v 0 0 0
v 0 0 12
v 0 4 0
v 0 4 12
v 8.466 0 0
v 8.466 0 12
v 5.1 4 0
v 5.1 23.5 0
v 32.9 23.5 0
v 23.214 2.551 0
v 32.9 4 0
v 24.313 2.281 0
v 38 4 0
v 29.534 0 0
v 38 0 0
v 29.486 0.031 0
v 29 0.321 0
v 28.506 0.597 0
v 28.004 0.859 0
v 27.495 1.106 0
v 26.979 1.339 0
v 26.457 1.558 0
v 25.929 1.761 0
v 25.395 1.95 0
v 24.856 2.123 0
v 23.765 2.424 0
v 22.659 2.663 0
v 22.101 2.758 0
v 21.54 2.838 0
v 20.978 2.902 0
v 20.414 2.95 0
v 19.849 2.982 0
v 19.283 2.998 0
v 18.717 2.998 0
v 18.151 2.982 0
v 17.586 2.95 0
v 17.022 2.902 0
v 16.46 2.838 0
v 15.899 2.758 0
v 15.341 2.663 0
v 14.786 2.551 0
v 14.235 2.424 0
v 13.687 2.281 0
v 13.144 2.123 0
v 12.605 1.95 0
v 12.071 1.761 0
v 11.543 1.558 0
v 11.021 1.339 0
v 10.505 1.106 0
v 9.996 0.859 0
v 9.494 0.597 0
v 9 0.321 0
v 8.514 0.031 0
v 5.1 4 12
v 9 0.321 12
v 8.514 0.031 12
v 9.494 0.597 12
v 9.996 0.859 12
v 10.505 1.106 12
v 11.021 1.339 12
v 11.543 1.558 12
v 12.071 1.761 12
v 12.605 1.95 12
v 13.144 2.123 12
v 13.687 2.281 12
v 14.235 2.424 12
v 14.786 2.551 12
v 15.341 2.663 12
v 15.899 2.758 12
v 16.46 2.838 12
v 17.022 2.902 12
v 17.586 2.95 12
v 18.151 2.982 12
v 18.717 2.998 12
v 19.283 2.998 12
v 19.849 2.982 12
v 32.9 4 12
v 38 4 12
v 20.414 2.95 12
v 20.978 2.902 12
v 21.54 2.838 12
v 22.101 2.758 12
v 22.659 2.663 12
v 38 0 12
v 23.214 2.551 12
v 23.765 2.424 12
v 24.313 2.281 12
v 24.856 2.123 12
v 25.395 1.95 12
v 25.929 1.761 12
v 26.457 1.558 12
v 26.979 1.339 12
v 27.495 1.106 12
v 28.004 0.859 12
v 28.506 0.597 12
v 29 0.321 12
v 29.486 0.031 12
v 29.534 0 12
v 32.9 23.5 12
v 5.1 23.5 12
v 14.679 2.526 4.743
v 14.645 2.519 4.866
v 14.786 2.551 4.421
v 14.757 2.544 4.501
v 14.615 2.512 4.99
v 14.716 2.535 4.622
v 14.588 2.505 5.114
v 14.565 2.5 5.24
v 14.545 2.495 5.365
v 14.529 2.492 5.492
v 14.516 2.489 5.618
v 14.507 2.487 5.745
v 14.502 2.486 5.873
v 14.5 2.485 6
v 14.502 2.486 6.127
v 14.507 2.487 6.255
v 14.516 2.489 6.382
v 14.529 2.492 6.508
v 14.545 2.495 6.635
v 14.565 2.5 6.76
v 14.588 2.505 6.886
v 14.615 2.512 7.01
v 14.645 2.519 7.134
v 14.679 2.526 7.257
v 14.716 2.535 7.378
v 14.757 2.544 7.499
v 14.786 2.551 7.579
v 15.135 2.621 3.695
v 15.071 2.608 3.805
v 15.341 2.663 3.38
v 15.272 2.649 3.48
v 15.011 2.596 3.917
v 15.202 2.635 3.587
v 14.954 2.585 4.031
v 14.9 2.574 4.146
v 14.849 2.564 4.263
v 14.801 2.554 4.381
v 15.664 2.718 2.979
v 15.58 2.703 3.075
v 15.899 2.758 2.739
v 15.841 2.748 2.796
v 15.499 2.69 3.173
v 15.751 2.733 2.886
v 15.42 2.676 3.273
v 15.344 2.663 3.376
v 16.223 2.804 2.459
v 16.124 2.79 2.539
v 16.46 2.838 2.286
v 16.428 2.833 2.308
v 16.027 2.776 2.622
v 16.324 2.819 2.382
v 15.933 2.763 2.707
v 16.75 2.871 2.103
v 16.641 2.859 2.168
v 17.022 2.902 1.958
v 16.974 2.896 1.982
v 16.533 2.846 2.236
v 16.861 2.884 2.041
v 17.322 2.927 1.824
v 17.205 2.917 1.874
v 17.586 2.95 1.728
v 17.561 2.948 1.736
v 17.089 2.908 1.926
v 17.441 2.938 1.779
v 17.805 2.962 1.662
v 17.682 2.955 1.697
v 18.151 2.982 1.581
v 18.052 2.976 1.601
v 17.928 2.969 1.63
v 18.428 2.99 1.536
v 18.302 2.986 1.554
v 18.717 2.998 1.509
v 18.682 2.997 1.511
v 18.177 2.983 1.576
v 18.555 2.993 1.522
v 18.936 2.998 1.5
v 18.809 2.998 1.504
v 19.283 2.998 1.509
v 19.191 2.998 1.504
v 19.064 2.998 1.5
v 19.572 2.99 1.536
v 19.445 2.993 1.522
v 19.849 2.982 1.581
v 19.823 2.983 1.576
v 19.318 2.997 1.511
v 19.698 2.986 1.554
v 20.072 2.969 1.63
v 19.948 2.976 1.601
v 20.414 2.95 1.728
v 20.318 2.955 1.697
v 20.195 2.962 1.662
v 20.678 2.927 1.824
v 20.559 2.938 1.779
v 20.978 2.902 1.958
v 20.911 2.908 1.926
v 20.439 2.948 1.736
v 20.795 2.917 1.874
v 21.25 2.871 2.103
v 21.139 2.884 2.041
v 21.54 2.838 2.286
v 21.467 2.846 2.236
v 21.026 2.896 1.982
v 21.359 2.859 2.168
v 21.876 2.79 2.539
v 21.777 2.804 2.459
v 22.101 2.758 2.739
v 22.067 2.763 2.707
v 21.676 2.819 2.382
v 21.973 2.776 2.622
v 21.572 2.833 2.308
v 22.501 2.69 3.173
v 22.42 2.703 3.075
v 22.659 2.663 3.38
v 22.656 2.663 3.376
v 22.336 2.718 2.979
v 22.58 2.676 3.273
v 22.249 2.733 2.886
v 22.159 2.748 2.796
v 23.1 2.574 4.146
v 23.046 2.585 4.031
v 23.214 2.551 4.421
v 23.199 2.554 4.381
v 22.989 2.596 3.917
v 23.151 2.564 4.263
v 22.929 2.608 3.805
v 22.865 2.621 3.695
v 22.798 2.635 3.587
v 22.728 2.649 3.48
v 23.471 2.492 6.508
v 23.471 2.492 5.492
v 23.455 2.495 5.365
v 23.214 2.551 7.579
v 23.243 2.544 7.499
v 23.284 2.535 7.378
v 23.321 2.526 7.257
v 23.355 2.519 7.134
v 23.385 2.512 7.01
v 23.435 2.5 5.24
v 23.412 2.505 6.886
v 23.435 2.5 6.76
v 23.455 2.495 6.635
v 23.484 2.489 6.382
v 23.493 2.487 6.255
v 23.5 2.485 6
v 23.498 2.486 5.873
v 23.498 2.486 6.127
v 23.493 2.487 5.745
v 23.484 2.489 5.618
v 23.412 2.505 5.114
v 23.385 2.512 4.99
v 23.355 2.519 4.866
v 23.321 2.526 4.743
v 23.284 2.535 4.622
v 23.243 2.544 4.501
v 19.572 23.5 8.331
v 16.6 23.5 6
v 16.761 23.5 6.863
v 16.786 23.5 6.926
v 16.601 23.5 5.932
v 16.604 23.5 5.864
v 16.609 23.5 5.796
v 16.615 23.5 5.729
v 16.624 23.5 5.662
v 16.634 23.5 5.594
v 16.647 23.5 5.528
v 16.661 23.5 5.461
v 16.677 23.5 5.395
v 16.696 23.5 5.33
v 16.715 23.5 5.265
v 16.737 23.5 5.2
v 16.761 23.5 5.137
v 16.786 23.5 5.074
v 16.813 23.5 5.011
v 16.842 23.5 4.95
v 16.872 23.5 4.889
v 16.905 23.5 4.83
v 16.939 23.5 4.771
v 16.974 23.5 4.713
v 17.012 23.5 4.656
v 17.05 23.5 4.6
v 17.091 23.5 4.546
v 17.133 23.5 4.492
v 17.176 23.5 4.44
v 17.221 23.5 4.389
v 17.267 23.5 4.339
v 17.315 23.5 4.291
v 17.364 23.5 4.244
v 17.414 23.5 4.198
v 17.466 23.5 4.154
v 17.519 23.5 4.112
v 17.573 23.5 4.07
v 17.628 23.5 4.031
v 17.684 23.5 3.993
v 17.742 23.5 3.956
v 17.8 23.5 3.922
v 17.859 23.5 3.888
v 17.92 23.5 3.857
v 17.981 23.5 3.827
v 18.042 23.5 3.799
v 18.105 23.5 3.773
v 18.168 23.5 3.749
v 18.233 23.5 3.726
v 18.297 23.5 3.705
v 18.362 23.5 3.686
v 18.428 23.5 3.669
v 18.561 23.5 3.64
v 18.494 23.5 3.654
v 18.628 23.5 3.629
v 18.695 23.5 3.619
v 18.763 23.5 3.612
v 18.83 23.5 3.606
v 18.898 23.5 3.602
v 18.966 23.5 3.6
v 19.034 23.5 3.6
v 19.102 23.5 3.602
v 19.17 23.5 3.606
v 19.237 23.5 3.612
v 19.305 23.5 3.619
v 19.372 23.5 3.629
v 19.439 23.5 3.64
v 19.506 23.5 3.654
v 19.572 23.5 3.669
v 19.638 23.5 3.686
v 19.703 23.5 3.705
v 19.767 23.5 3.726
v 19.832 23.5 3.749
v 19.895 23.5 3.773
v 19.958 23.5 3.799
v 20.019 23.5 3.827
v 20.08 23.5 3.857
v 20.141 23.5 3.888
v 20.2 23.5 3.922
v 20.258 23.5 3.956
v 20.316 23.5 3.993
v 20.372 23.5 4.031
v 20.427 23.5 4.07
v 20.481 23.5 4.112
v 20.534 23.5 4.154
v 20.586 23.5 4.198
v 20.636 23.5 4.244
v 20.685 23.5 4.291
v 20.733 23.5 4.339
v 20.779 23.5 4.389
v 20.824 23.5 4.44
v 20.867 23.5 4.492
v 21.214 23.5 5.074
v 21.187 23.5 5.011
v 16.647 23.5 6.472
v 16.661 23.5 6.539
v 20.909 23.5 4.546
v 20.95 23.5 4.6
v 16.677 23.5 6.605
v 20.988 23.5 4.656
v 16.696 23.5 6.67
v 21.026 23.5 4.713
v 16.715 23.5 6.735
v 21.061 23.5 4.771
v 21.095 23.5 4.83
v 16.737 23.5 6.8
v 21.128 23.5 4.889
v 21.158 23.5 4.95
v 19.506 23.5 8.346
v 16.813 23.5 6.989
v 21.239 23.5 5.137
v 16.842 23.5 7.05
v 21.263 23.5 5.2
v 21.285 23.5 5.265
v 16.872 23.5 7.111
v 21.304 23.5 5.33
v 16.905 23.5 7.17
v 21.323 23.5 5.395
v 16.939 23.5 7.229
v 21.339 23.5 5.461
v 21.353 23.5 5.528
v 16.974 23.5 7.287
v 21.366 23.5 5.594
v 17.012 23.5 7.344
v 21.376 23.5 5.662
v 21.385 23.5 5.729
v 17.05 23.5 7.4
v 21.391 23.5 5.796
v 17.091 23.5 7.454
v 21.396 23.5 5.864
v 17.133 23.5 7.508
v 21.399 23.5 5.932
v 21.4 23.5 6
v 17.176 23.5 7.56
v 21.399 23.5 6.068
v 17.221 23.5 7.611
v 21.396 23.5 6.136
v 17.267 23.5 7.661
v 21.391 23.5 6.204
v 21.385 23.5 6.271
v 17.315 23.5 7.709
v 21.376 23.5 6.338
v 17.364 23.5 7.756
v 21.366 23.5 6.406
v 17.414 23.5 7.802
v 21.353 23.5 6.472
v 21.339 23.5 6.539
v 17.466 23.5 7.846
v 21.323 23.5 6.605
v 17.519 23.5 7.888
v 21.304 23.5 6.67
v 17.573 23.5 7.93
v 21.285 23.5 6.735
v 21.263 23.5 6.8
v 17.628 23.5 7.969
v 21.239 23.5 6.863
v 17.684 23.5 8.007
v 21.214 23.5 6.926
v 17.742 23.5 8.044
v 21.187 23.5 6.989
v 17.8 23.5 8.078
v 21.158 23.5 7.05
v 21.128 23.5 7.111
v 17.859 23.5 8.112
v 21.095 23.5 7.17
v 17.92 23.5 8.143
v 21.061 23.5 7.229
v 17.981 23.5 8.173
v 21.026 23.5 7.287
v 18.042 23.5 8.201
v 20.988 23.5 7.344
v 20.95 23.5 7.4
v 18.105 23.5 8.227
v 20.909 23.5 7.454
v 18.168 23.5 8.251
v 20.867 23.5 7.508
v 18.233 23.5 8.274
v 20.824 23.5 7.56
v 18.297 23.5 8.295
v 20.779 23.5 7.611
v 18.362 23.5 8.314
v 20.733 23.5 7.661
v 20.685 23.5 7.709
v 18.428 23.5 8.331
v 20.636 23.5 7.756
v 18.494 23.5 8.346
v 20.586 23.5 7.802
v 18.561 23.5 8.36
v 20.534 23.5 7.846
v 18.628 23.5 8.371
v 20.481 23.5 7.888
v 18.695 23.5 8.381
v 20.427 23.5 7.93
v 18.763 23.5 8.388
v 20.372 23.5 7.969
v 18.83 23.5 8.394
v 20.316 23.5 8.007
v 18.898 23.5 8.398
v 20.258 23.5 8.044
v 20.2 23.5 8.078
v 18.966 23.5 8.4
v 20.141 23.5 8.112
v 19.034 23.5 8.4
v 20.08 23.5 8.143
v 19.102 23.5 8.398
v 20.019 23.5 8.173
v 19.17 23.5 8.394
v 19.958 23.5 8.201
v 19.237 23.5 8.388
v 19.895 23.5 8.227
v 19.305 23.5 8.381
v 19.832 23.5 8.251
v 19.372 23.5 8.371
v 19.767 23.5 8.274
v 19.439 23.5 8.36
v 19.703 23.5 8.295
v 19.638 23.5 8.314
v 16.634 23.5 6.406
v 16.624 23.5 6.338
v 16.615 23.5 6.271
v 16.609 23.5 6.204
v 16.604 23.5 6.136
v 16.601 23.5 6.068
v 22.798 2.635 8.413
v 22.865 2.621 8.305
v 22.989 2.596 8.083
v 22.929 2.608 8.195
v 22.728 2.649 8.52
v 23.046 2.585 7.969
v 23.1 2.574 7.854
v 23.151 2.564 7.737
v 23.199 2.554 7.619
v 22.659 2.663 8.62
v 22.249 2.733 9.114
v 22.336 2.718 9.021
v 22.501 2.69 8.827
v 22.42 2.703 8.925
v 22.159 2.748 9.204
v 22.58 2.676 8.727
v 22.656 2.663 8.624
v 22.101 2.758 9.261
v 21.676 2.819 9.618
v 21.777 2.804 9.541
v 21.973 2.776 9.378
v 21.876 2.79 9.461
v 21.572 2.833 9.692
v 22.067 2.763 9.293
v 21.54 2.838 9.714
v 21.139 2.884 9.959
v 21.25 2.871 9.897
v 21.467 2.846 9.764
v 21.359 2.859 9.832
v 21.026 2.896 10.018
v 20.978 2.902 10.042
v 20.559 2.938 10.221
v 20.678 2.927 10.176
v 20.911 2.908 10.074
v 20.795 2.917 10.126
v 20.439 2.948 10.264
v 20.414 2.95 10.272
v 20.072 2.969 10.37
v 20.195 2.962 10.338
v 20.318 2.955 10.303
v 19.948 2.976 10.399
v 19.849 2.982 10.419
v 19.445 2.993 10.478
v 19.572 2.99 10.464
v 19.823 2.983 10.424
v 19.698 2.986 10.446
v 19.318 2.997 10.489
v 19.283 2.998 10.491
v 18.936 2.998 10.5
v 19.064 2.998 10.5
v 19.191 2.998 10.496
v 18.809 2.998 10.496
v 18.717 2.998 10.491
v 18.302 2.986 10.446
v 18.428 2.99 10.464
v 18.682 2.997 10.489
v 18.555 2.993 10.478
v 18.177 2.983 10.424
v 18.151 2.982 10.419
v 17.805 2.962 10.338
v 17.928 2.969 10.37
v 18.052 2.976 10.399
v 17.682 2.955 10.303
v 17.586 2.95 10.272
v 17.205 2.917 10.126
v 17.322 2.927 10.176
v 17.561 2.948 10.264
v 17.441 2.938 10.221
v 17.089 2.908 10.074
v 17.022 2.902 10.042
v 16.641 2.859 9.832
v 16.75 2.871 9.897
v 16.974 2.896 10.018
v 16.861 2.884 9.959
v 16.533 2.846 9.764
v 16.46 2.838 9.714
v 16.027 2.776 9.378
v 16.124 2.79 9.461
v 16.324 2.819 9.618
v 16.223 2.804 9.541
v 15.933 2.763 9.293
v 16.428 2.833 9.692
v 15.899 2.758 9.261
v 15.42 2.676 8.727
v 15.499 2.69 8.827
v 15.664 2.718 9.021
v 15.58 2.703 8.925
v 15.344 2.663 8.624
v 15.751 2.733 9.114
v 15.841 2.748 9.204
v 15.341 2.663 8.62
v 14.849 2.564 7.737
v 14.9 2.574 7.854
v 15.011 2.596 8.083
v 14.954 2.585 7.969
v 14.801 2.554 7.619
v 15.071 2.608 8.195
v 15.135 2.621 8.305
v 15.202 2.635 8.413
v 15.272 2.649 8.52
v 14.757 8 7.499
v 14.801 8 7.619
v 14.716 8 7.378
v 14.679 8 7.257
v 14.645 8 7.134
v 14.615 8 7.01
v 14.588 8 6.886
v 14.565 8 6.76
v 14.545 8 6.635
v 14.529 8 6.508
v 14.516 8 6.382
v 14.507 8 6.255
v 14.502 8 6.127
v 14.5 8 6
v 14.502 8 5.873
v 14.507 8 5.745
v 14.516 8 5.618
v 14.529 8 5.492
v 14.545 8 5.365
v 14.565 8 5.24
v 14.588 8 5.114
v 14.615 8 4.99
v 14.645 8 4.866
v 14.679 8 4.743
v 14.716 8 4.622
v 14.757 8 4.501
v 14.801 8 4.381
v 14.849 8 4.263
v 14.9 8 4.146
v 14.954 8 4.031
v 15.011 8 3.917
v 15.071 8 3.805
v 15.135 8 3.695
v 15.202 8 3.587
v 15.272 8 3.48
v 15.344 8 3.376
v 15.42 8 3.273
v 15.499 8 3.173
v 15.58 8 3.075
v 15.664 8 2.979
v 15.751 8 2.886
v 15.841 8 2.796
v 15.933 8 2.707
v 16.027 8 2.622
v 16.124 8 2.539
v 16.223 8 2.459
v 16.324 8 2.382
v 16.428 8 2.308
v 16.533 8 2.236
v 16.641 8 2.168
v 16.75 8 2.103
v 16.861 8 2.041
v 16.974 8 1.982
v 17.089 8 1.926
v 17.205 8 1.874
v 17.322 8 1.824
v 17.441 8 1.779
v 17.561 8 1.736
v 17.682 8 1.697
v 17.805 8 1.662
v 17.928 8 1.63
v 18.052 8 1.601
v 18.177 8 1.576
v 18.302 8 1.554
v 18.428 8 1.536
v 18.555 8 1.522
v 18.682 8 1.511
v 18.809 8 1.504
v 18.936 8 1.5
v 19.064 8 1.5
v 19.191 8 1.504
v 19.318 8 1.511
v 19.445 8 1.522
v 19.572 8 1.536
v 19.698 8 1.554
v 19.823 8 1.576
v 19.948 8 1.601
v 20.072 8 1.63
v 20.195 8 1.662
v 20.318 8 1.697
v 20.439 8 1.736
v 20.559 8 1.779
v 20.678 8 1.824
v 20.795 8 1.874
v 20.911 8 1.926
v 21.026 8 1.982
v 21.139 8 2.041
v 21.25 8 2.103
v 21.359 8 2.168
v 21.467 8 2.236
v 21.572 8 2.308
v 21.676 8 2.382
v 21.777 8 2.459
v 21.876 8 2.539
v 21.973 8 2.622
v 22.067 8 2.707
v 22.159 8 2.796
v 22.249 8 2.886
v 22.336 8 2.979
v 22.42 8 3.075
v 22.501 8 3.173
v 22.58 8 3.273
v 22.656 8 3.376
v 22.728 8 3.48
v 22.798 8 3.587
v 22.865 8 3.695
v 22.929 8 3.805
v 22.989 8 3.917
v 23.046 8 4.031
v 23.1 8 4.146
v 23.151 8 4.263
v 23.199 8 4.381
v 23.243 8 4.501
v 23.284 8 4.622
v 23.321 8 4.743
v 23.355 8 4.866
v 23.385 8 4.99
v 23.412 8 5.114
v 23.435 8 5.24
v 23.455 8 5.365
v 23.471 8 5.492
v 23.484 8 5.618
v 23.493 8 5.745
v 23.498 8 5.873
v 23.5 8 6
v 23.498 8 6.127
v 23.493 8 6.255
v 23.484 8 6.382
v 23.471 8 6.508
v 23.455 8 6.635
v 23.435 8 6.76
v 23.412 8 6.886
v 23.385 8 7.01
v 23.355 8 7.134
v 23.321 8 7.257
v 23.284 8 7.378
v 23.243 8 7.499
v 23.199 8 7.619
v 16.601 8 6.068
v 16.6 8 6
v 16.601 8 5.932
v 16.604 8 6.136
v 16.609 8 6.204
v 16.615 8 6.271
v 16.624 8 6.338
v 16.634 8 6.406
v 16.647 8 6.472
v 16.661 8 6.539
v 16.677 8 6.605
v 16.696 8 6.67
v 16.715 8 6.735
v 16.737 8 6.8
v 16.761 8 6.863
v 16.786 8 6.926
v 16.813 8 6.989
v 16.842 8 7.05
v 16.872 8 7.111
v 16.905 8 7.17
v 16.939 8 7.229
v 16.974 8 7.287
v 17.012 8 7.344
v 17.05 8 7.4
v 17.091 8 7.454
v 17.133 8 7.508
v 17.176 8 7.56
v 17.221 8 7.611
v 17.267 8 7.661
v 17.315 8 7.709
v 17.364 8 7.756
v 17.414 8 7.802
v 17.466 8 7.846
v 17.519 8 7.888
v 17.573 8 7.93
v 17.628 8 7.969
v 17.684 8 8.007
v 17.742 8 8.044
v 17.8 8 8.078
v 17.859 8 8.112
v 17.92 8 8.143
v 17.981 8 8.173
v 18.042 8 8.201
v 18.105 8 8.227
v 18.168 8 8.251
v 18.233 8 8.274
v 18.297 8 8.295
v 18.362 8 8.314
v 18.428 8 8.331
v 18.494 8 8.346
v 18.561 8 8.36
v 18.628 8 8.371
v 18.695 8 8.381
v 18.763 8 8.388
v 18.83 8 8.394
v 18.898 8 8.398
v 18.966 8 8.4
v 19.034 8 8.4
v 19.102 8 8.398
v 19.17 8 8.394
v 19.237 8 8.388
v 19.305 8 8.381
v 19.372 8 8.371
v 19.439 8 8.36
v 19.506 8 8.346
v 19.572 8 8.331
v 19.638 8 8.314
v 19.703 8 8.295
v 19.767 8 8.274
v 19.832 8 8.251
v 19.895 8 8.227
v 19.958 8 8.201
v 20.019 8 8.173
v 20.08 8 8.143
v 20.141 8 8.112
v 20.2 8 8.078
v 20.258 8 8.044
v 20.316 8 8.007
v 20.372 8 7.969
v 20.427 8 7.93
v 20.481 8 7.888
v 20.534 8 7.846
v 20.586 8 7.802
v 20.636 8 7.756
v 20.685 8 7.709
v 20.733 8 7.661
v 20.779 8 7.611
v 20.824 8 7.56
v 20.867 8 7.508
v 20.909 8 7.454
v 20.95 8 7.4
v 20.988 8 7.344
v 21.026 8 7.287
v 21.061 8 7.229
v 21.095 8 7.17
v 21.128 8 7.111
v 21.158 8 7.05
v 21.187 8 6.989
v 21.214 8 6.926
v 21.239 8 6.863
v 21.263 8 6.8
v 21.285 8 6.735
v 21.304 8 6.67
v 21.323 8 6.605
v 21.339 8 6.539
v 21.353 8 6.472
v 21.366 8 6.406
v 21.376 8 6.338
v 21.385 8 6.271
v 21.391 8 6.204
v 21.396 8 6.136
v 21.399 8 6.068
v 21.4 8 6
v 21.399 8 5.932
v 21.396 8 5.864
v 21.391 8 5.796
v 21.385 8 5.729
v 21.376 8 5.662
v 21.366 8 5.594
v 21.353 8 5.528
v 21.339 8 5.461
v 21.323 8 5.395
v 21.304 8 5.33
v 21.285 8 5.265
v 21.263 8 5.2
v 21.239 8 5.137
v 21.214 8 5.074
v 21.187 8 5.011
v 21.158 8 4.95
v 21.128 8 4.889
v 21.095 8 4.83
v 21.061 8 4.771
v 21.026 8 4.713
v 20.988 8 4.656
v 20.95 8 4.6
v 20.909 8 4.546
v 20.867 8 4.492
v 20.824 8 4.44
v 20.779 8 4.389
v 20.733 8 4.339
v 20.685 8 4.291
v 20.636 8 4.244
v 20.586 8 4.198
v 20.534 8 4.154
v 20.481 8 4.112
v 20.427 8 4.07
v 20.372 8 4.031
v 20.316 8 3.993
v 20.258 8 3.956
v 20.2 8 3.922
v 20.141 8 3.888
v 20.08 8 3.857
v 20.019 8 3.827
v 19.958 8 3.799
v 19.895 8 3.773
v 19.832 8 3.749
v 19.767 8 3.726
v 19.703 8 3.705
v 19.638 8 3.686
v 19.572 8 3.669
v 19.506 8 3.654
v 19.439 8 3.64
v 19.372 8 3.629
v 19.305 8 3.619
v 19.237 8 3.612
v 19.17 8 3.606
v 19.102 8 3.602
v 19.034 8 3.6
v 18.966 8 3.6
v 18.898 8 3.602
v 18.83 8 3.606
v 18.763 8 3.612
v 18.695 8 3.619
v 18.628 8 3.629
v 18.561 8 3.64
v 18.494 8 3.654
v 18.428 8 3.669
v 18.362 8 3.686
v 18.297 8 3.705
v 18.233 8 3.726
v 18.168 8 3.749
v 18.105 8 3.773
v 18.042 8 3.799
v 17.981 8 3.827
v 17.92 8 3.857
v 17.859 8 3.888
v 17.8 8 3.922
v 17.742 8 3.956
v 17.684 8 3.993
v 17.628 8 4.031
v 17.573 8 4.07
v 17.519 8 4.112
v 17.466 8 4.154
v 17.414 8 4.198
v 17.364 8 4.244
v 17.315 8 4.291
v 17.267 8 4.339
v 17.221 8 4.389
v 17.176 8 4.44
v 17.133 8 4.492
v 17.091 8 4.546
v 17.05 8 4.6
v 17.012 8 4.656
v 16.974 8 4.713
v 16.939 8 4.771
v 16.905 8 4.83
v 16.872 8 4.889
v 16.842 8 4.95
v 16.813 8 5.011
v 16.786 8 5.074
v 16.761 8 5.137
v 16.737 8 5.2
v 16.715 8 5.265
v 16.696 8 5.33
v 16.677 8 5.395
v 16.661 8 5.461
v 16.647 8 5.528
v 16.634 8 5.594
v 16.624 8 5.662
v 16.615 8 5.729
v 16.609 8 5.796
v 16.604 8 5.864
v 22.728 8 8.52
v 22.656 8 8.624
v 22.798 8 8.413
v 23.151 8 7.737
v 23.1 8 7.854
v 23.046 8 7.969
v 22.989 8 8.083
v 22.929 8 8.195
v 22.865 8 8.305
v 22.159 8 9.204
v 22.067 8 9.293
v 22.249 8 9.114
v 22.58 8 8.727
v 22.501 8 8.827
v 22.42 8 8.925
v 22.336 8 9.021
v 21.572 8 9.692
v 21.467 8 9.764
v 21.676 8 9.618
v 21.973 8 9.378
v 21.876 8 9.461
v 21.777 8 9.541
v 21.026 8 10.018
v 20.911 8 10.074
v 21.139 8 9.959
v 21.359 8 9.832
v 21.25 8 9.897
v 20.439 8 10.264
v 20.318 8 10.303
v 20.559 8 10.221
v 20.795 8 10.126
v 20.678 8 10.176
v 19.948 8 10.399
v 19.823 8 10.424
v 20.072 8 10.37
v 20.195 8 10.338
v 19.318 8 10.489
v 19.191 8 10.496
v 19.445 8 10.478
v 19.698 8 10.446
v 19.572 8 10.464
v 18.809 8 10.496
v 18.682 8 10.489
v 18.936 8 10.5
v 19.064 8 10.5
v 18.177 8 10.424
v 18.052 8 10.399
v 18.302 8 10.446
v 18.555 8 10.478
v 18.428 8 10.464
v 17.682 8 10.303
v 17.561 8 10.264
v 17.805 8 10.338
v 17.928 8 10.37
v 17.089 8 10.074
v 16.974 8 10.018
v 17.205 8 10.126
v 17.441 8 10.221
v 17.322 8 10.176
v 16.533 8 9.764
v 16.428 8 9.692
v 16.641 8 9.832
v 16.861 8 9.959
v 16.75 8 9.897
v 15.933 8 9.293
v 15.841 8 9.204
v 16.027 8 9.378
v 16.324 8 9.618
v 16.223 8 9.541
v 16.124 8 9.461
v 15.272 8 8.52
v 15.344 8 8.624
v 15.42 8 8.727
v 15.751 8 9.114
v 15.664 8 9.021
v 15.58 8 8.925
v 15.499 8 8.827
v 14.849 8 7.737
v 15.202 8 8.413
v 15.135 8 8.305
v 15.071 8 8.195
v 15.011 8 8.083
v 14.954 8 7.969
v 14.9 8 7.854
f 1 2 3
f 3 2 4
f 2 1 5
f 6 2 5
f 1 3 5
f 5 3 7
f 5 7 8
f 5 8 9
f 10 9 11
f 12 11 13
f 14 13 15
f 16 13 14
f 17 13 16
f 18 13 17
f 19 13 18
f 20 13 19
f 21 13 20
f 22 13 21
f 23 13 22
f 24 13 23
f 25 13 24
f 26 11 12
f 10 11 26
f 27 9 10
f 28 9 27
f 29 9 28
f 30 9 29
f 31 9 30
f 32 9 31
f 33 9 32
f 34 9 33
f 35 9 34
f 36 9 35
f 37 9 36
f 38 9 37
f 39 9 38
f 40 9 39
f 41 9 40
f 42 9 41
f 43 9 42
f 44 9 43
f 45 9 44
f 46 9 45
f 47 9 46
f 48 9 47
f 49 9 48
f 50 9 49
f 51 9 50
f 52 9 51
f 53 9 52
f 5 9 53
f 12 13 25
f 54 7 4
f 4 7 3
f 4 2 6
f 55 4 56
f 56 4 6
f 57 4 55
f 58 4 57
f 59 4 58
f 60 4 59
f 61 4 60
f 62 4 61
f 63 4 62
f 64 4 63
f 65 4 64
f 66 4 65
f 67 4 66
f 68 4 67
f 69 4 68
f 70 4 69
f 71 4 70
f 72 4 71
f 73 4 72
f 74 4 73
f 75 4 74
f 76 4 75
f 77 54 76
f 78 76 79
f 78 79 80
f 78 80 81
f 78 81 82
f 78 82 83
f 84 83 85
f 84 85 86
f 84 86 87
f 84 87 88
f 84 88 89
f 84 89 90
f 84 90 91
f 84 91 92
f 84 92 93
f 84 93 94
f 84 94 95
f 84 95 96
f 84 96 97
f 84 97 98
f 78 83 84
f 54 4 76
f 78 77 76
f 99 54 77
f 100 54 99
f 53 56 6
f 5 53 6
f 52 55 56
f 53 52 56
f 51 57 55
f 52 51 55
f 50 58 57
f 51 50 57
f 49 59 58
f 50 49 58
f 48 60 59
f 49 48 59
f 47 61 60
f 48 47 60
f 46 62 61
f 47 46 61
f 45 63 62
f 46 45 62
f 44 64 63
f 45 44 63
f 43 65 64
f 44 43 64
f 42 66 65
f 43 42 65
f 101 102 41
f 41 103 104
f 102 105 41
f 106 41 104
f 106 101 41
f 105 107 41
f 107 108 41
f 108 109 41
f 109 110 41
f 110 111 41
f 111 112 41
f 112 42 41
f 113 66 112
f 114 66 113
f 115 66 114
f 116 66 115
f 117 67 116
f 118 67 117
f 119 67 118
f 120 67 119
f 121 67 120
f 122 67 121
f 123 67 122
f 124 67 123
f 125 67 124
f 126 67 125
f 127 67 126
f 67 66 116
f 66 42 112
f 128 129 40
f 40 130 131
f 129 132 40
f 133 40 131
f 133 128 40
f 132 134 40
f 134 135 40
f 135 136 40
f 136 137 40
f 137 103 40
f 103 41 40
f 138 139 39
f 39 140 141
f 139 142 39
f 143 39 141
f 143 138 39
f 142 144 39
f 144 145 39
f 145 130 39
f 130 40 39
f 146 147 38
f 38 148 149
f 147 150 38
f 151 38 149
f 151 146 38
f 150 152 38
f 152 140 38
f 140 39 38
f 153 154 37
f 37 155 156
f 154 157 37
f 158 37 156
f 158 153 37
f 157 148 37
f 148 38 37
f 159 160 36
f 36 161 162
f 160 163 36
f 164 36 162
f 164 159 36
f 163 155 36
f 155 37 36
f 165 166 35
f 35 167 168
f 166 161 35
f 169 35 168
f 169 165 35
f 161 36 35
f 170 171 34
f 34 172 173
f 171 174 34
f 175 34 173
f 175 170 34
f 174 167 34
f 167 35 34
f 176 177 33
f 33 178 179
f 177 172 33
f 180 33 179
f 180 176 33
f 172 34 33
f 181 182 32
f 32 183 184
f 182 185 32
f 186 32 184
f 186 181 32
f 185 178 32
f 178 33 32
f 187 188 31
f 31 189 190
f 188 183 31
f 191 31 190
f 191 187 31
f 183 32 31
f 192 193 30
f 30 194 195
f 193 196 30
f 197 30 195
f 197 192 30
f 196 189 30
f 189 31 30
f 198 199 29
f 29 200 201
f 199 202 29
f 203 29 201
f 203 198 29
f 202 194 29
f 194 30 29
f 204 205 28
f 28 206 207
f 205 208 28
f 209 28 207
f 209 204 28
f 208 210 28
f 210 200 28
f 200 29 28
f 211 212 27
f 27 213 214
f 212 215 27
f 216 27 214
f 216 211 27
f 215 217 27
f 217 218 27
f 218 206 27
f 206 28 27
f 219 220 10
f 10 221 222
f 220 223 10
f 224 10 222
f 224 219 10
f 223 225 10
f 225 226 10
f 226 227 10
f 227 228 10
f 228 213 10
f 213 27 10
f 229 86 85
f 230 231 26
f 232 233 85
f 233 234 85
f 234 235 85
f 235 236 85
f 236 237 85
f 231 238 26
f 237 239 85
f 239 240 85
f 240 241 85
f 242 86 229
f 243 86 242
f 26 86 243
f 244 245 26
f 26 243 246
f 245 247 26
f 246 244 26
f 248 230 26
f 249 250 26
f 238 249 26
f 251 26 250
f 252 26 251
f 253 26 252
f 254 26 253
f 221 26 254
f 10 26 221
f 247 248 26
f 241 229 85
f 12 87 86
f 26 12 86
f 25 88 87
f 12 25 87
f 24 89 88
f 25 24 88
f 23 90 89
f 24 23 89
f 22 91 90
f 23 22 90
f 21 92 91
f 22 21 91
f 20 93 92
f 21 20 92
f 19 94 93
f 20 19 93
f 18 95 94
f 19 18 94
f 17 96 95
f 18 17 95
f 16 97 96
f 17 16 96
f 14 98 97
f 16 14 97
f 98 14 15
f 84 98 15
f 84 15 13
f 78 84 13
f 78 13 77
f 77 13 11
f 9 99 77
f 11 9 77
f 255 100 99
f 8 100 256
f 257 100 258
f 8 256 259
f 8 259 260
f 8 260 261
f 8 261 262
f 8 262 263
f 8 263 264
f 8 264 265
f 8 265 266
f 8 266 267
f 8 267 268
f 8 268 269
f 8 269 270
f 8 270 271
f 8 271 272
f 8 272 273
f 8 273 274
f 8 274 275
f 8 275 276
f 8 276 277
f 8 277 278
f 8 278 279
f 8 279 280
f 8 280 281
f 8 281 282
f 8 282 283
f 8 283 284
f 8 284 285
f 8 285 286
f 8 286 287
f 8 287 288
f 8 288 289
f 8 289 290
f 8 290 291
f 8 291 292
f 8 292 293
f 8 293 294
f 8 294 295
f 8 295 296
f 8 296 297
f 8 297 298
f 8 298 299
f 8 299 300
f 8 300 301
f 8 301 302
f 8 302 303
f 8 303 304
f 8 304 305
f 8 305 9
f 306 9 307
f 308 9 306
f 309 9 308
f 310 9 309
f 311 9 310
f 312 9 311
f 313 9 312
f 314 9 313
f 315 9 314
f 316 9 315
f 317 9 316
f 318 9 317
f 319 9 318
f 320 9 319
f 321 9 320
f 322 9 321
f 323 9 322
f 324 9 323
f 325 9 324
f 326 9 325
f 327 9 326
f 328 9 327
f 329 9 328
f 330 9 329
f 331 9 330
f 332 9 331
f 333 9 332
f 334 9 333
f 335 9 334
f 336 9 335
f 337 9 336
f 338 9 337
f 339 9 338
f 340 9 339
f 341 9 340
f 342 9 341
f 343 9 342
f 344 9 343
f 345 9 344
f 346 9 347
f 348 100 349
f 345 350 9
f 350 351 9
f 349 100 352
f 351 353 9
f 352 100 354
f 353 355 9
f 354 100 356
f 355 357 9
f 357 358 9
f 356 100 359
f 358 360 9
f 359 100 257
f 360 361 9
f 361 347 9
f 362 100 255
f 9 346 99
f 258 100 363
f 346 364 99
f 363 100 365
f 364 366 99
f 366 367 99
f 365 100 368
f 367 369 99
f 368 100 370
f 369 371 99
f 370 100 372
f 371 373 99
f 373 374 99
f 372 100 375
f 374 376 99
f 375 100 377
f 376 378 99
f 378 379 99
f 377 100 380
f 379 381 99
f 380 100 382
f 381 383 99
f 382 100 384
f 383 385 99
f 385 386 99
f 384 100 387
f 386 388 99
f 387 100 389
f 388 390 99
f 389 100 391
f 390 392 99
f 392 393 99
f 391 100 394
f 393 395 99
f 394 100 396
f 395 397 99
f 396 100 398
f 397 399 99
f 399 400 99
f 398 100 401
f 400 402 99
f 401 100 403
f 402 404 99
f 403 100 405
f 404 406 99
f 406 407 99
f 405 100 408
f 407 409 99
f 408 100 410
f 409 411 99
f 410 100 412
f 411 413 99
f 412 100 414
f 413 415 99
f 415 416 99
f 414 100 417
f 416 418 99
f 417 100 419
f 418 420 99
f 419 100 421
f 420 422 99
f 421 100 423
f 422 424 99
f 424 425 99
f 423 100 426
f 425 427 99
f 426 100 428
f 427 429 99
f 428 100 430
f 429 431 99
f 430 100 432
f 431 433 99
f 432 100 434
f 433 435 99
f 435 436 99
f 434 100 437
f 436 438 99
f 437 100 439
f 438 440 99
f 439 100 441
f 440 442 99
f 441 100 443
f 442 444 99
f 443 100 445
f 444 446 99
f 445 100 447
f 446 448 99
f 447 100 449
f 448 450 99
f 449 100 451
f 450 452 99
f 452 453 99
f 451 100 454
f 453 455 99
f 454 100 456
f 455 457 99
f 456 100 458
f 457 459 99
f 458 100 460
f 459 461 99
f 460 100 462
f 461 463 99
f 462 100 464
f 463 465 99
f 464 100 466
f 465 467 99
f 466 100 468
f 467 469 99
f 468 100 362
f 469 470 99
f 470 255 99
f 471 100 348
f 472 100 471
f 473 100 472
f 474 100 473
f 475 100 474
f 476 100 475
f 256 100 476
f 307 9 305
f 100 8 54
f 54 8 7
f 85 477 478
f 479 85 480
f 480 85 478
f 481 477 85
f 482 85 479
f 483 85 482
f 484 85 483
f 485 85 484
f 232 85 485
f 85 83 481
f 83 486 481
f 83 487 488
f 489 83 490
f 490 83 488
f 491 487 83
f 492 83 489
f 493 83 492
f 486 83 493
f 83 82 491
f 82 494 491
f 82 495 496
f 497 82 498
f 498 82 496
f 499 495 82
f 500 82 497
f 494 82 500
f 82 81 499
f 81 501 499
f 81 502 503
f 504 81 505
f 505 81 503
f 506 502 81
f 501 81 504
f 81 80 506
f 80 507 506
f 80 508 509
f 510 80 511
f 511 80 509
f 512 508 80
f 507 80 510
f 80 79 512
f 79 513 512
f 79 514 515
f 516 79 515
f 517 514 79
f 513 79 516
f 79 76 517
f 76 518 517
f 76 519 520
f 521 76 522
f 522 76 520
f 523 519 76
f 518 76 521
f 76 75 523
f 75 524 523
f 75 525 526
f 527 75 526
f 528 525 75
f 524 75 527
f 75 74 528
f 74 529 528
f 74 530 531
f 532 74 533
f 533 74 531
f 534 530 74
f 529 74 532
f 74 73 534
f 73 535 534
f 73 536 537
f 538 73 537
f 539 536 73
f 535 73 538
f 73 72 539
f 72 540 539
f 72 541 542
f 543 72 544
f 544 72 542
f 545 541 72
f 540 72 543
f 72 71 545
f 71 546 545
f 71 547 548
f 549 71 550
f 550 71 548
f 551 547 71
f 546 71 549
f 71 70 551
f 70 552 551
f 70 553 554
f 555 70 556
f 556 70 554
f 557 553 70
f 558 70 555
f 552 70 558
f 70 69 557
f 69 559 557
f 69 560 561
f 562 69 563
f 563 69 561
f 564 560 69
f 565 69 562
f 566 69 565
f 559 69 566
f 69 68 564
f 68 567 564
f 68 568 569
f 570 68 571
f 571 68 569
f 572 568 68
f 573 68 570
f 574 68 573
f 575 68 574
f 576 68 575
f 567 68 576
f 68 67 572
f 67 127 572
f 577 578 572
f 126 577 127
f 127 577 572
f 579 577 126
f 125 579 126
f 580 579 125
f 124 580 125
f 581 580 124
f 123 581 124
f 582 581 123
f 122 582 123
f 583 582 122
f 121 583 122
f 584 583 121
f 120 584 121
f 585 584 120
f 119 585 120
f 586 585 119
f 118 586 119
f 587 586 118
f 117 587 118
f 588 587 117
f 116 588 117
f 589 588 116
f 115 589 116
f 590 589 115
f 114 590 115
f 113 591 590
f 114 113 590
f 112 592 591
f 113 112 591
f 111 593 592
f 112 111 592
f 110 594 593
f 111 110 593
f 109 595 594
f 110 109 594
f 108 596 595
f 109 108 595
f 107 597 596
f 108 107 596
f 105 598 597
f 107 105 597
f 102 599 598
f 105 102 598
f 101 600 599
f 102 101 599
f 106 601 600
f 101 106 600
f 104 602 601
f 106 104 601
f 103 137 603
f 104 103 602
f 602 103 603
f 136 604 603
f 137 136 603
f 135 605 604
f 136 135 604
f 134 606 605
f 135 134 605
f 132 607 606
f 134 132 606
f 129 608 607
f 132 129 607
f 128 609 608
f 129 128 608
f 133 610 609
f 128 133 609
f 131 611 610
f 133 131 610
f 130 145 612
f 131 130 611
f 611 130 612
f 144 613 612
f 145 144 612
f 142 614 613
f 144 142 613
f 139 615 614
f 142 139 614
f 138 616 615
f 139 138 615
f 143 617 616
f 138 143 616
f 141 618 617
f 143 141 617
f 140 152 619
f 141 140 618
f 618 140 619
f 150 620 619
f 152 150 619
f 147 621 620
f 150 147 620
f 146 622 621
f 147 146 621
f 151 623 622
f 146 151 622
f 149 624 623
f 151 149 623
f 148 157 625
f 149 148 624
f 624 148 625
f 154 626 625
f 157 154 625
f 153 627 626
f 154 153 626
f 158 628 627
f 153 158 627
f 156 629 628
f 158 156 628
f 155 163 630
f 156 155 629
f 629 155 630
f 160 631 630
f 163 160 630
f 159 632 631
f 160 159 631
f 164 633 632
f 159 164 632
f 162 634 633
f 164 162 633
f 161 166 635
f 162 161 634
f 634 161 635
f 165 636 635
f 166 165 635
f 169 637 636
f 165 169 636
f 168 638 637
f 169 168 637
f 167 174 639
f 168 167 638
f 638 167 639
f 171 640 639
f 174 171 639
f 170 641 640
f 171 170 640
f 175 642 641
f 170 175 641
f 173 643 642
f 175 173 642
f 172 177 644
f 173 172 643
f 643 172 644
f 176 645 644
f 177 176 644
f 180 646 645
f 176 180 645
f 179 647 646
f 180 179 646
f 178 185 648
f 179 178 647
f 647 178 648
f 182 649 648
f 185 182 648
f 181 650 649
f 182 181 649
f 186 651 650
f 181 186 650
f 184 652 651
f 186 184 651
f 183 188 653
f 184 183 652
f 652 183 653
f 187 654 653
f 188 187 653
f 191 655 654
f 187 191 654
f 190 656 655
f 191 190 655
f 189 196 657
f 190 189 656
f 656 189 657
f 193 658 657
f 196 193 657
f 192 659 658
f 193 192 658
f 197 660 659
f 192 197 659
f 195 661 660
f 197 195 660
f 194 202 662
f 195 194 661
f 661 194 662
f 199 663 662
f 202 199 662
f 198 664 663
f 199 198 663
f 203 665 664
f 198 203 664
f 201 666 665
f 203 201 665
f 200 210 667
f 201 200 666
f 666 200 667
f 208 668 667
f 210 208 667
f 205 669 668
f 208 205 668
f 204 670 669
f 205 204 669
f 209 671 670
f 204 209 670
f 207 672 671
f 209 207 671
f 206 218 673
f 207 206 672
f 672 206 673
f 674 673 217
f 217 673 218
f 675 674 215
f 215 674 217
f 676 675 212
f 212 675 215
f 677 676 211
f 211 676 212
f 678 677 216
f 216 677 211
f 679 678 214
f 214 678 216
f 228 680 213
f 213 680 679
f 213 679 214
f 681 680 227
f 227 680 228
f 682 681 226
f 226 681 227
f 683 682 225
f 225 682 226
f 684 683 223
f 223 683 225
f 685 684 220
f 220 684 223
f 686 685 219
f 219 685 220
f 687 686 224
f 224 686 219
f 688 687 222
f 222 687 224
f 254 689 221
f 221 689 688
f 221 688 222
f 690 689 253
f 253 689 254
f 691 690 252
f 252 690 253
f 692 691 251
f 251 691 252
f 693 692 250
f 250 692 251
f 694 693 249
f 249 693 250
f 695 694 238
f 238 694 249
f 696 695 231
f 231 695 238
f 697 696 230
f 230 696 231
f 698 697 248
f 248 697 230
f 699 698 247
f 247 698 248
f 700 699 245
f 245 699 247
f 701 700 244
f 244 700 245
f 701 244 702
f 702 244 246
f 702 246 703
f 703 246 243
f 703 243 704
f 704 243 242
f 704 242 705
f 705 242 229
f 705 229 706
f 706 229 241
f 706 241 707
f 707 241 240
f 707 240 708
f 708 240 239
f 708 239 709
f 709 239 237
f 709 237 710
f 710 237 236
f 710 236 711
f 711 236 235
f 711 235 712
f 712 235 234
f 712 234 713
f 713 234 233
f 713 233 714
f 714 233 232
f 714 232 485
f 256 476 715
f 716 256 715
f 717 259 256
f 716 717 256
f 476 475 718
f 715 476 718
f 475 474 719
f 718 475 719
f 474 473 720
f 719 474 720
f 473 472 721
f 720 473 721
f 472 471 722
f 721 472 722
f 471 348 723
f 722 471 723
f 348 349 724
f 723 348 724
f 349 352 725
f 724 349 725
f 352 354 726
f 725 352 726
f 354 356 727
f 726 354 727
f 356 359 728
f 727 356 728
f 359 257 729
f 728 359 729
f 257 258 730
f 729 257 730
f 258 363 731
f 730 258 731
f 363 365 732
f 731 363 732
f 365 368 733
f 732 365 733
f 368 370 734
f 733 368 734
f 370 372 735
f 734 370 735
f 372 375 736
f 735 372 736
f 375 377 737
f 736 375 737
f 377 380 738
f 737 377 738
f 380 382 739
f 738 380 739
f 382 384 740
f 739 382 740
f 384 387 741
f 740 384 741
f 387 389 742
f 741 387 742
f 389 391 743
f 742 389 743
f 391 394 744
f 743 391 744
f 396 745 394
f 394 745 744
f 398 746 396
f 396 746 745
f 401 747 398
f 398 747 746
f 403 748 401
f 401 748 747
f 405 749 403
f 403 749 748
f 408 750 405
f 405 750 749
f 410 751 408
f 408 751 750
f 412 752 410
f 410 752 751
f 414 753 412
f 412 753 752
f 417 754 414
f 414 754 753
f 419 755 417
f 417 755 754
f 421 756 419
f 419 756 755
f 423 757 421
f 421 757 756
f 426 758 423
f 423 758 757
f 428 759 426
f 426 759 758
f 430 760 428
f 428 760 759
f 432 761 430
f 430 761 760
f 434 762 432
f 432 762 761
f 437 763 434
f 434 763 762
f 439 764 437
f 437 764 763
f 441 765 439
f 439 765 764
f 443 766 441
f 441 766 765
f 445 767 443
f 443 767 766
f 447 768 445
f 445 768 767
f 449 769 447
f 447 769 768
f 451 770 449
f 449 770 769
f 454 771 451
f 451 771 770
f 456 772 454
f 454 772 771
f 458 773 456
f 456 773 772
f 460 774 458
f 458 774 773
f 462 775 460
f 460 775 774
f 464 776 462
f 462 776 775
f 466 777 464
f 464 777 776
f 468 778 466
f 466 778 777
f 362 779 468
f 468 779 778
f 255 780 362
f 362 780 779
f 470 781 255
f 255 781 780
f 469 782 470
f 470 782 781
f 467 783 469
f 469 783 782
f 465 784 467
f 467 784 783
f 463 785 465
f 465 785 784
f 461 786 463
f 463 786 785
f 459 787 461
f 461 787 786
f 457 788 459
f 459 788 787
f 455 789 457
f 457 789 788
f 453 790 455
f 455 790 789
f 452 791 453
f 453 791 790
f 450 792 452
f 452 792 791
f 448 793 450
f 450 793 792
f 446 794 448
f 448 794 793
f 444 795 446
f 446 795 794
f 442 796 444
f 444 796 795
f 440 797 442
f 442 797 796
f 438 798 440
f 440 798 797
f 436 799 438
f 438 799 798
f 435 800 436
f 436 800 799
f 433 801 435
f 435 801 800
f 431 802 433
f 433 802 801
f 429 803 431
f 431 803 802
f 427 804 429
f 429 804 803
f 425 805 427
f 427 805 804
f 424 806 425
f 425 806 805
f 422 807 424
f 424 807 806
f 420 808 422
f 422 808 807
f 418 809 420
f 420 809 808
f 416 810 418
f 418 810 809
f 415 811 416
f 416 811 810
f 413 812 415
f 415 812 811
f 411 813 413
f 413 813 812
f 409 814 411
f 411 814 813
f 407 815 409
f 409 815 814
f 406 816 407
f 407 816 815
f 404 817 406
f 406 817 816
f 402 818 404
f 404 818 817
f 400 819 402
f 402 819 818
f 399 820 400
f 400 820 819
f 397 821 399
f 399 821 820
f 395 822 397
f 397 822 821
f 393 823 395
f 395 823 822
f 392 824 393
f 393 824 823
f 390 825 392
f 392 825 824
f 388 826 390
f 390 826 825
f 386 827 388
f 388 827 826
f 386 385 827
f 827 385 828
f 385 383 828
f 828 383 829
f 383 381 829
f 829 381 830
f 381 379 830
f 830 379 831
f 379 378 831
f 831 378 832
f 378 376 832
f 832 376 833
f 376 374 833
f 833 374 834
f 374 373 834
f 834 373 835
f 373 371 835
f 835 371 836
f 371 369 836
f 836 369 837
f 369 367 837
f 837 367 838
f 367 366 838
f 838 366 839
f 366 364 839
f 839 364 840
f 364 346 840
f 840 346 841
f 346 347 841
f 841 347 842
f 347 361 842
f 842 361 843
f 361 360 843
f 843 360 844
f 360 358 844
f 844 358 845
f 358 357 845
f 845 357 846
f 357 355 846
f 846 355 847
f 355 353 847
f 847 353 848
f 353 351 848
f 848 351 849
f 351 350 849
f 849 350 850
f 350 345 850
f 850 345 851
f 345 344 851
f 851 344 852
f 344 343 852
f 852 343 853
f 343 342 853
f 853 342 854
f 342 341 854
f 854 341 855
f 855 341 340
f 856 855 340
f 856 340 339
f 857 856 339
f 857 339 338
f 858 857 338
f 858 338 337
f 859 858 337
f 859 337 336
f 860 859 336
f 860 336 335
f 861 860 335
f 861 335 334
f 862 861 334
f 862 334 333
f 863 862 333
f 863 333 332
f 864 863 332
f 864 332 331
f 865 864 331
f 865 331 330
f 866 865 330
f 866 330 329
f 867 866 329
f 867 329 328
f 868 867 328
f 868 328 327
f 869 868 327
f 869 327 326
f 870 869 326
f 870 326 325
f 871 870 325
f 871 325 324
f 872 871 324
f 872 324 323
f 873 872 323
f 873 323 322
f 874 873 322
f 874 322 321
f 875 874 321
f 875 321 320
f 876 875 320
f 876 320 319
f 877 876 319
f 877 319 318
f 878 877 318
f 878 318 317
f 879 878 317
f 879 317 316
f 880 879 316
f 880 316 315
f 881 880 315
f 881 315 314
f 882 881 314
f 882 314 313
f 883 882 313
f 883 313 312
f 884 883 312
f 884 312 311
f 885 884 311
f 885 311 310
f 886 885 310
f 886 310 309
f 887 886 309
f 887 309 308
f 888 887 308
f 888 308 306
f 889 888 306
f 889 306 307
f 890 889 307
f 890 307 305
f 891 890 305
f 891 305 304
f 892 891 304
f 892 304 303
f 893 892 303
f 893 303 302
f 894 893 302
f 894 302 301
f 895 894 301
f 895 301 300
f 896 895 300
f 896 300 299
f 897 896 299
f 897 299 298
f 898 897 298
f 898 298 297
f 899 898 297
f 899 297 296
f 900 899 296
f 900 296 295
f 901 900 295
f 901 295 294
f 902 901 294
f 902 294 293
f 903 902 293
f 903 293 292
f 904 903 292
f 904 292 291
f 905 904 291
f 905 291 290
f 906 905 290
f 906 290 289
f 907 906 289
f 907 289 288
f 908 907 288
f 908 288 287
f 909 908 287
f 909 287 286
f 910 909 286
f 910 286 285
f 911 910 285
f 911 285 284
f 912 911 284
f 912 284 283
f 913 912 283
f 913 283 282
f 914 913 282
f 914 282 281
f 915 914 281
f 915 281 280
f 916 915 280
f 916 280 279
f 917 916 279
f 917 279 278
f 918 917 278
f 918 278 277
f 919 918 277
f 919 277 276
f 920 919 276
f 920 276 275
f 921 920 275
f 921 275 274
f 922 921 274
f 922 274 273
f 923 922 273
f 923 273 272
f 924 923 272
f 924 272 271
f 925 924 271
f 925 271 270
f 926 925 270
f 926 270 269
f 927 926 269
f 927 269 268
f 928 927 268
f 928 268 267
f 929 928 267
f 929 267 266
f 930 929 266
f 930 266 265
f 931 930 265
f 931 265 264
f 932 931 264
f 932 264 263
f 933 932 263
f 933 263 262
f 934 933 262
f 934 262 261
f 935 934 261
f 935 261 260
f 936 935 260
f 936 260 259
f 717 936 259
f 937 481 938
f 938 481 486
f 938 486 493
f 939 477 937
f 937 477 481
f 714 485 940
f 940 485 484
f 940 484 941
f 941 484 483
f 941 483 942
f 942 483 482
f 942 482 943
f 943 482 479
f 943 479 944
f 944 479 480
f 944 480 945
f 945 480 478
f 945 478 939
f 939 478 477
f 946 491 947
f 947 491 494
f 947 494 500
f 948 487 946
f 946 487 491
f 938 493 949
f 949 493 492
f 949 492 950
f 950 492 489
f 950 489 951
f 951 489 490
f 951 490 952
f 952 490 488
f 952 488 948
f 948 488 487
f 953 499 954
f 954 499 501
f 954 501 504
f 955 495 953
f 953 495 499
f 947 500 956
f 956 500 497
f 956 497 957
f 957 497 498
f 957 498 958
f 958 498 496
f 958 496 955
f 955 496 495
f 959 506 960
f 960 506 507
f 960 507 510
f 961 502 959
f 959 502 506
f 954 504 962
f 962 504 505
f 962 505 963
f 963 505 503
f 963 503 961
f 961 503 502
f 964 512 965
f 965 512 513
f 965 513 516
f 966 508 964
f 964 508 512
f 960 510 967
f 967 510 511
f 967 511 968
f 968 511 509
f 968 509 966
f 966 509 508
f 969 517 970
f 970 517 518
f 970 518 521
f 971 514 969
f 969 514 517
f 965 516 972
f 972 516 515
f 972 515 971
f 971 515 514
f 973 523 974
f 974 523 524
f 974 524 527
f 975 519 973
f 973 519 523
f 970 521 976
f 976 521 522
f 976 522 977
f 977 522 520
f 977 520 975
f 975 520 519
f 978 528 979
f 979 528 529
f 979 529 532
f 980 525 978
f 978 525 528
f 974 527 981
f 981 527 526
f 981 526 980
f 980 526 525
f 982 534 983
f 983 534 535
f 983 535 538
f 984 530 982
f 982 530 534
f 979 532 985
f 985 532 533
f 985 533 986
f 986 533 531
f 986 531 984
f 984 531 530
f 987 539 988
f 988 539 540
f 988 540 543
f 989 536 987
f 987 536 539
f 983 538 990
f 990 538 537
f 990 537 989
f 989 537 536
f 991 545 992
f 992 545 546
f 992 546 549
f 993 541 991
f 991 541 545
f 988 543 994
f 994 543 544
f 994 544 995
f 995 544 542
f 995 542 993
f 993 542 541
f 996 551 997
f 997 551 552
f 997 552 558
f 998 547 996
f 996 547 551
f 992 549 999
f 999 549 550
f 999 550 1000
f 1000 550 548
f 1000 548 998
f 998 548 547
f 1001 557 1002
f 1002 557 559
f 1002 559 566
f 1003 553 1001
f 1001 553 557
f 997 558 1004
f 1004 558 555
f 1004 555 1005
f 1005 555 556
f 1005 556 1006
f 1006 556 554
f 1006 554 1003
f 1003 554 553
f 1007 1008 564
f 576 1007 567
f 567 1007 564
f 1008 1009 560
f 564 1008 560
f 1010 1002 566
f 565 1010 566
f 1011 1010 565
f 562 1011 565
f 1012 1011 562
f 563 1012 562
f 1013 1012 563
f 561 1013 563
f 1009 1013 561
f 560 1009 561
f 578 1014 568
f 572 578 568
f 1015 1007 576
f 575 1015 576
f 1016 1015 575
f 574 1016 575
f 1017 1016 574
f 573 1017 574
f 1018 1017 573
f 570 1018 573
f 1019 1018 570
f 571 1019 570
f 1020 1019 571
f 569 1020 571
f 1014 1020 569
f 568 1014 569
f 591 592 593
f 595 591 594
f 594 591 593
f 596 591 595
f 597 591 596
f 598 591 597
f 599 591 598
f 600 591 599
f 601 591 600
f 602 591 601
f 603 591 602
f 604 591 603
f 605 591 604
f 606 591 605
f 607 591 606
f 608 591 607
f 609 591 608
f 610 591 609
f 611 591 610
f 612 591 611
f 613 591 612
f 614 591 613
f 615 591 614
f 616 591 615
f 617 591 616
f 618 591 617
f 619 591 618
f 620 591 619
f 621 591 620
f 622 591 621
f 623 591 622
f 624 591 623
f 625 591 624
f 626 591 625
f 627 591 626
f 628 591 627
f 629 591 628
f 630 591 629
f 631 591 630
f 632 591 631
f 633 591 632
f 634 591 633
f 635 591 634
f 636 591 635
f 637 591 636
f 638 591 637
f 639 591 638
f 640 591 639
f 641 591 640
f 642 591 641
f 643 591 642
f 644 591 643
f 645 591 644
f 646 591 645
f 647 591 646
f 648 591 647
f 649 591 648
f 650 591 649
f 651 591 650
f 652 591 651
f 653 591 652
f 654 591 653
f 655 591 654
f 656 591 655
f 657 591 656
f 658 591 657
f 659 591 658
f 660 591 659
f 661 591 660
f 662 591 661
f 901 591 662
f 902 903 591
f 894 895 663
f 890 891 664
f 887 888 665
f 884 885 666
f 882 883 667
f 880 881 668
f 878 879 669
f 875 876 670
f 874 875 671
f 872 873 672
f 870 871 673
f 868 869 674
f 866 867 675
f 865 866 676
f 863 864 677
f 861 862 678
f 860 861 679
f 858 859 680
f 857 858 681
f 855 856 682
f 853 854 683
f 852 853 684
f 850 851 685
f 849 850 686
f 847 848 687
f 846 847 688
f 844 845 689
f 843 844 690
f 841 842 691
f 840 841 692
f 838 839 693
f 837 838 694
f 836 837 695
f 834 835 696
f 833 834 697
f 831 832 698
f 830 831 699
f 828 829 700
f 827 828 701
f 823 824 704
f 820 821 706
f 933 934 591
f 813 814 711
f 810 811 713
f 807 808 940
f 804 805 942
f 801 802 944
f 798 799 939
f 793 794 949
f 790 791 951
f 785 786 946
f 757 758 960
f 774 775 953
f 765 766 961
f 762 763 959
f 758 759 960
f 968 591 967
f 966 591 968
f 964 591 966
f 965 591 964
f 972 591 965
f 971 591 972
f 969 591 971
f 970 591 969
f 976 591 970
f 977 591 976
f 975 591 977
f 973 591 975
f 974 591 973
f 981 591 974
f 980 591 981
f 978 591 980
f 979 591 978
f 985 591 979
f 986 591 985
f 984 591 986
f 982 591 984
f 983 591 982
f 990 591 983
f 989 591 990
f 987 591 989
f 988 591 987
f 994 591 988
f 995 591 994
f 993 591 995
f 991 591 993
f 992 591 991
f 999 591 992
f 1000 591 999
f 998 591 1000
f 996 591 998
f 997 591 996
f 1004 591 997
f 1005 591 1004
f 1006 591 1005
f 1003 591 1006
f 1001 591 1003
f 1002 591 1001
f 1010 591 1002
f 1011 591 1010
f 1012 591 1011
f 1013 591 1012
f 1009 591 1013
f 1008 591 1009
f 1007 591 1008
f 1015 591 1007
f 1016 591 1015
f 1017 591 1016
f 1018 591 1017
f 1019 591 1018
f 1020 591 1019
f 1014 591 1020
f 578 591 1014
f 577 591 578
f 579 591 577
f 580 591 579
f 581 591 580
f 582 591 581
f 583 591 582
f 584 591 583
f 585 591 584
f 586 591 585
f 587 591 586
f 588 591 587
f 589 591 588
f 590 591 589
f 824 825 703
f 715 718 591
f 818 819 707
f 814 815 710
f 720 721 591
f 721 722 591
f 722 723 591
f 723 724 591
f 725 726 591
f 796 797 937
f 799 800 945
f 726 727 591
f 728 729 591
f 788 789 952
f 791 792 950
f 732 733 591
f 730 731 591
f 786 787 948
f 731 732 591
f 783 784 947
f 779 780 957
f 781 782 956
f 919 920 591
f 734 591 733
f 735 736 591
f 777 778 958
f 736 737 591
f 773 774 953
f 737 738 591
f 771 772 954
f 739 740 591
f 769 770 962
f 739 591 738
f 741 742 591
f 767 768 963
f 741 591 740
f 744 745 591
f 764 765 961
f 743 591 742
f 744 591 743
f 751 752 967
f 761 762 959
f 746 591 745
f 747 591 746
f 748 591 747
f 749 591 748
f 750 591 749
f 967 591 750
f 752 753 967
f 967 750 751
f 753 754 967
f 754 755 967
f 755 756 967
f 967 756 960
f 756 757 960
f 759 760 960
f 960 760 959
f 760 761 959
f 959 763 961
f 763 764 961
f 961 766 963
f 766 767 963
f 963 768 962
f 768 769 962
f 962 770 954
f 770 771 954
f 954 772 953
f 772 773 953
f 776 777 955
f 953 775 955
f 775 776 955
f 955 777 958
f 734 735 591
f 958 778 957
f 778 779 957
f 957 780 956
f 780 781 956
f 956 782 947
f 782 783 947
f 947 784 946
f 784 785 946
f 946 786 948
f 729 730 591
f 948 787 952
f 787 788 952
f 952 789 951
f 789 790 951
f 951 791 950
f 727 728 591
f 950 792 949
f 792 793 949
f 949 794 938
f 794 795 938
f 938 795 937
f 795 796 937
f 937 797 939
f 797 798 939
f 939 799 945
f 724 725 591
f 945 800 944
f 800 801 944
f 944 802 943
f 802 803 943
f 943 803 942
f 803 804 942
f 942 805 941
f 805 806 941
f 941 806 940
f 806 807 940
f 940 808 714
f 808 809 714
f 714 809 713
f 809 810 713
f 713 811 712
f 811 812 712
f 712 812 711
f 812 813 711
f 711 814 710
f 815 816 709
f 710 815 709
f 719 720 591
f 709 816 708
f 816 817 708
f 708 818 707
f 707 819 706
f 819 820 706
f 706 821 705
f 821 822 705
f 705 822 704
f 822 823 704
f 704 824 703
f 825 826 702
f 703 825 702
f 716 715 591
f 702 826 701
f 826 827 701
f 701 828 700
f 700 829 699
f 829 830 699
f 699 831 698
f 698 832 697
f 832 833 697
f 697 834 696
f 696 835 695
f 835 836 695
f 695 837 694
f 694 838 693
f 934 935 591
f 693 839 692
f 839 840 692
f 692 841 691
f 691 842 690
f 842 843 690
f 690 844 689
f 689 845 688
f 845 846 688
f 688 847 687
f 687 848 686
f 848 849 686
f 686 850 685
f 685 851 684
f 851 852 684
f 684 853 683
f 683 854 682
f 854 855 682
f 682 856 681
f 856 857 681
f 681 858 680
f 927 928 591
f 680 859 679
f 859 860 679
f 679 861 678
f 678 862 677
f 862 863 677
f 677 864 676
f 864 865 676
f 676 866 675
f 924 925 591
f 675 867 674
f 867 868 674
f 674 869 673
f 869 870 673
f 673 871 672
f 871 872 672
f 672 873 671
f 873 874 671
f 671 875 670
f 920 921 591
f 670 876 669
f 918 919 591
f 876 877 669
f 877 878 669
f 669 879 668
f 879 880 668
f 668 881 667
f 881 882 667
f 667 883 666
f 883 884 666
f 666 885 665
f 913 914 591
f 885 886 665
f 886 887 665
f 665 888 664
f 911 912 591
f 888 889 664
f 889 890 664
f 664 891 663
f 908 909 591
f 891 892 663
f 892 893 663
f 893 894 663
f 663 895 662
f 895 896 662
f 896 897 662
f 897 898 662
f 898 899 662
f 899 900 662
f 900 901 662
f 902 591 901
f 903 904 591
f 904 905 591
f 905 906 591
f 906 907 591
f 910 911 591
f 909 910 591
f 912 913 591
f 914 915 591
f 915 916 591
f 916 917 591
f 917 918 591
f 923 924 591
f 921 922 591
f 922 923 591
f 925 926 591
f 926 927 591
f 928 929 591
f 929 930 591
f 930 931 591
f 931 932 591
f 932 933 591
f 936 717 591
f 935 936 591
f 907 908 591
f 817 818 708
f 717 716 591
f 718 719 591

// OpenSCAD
$fn=222;

difference()


{

cube([38,23.5,12]);

translate([-0.5,4,-1])cube([5.6,20,15]);
translate([32.9,4,-1])cube([5.6,20,15]);
translate([19,-1,6])rotate([-90,0,0])cylinder(r=2.4,h=50);
translate([19,8,6])rotate([90,0,0])cylinder(r=4.5,h=50);
translate([19,-17,-1])cylinder(r=20,h=20);
}
